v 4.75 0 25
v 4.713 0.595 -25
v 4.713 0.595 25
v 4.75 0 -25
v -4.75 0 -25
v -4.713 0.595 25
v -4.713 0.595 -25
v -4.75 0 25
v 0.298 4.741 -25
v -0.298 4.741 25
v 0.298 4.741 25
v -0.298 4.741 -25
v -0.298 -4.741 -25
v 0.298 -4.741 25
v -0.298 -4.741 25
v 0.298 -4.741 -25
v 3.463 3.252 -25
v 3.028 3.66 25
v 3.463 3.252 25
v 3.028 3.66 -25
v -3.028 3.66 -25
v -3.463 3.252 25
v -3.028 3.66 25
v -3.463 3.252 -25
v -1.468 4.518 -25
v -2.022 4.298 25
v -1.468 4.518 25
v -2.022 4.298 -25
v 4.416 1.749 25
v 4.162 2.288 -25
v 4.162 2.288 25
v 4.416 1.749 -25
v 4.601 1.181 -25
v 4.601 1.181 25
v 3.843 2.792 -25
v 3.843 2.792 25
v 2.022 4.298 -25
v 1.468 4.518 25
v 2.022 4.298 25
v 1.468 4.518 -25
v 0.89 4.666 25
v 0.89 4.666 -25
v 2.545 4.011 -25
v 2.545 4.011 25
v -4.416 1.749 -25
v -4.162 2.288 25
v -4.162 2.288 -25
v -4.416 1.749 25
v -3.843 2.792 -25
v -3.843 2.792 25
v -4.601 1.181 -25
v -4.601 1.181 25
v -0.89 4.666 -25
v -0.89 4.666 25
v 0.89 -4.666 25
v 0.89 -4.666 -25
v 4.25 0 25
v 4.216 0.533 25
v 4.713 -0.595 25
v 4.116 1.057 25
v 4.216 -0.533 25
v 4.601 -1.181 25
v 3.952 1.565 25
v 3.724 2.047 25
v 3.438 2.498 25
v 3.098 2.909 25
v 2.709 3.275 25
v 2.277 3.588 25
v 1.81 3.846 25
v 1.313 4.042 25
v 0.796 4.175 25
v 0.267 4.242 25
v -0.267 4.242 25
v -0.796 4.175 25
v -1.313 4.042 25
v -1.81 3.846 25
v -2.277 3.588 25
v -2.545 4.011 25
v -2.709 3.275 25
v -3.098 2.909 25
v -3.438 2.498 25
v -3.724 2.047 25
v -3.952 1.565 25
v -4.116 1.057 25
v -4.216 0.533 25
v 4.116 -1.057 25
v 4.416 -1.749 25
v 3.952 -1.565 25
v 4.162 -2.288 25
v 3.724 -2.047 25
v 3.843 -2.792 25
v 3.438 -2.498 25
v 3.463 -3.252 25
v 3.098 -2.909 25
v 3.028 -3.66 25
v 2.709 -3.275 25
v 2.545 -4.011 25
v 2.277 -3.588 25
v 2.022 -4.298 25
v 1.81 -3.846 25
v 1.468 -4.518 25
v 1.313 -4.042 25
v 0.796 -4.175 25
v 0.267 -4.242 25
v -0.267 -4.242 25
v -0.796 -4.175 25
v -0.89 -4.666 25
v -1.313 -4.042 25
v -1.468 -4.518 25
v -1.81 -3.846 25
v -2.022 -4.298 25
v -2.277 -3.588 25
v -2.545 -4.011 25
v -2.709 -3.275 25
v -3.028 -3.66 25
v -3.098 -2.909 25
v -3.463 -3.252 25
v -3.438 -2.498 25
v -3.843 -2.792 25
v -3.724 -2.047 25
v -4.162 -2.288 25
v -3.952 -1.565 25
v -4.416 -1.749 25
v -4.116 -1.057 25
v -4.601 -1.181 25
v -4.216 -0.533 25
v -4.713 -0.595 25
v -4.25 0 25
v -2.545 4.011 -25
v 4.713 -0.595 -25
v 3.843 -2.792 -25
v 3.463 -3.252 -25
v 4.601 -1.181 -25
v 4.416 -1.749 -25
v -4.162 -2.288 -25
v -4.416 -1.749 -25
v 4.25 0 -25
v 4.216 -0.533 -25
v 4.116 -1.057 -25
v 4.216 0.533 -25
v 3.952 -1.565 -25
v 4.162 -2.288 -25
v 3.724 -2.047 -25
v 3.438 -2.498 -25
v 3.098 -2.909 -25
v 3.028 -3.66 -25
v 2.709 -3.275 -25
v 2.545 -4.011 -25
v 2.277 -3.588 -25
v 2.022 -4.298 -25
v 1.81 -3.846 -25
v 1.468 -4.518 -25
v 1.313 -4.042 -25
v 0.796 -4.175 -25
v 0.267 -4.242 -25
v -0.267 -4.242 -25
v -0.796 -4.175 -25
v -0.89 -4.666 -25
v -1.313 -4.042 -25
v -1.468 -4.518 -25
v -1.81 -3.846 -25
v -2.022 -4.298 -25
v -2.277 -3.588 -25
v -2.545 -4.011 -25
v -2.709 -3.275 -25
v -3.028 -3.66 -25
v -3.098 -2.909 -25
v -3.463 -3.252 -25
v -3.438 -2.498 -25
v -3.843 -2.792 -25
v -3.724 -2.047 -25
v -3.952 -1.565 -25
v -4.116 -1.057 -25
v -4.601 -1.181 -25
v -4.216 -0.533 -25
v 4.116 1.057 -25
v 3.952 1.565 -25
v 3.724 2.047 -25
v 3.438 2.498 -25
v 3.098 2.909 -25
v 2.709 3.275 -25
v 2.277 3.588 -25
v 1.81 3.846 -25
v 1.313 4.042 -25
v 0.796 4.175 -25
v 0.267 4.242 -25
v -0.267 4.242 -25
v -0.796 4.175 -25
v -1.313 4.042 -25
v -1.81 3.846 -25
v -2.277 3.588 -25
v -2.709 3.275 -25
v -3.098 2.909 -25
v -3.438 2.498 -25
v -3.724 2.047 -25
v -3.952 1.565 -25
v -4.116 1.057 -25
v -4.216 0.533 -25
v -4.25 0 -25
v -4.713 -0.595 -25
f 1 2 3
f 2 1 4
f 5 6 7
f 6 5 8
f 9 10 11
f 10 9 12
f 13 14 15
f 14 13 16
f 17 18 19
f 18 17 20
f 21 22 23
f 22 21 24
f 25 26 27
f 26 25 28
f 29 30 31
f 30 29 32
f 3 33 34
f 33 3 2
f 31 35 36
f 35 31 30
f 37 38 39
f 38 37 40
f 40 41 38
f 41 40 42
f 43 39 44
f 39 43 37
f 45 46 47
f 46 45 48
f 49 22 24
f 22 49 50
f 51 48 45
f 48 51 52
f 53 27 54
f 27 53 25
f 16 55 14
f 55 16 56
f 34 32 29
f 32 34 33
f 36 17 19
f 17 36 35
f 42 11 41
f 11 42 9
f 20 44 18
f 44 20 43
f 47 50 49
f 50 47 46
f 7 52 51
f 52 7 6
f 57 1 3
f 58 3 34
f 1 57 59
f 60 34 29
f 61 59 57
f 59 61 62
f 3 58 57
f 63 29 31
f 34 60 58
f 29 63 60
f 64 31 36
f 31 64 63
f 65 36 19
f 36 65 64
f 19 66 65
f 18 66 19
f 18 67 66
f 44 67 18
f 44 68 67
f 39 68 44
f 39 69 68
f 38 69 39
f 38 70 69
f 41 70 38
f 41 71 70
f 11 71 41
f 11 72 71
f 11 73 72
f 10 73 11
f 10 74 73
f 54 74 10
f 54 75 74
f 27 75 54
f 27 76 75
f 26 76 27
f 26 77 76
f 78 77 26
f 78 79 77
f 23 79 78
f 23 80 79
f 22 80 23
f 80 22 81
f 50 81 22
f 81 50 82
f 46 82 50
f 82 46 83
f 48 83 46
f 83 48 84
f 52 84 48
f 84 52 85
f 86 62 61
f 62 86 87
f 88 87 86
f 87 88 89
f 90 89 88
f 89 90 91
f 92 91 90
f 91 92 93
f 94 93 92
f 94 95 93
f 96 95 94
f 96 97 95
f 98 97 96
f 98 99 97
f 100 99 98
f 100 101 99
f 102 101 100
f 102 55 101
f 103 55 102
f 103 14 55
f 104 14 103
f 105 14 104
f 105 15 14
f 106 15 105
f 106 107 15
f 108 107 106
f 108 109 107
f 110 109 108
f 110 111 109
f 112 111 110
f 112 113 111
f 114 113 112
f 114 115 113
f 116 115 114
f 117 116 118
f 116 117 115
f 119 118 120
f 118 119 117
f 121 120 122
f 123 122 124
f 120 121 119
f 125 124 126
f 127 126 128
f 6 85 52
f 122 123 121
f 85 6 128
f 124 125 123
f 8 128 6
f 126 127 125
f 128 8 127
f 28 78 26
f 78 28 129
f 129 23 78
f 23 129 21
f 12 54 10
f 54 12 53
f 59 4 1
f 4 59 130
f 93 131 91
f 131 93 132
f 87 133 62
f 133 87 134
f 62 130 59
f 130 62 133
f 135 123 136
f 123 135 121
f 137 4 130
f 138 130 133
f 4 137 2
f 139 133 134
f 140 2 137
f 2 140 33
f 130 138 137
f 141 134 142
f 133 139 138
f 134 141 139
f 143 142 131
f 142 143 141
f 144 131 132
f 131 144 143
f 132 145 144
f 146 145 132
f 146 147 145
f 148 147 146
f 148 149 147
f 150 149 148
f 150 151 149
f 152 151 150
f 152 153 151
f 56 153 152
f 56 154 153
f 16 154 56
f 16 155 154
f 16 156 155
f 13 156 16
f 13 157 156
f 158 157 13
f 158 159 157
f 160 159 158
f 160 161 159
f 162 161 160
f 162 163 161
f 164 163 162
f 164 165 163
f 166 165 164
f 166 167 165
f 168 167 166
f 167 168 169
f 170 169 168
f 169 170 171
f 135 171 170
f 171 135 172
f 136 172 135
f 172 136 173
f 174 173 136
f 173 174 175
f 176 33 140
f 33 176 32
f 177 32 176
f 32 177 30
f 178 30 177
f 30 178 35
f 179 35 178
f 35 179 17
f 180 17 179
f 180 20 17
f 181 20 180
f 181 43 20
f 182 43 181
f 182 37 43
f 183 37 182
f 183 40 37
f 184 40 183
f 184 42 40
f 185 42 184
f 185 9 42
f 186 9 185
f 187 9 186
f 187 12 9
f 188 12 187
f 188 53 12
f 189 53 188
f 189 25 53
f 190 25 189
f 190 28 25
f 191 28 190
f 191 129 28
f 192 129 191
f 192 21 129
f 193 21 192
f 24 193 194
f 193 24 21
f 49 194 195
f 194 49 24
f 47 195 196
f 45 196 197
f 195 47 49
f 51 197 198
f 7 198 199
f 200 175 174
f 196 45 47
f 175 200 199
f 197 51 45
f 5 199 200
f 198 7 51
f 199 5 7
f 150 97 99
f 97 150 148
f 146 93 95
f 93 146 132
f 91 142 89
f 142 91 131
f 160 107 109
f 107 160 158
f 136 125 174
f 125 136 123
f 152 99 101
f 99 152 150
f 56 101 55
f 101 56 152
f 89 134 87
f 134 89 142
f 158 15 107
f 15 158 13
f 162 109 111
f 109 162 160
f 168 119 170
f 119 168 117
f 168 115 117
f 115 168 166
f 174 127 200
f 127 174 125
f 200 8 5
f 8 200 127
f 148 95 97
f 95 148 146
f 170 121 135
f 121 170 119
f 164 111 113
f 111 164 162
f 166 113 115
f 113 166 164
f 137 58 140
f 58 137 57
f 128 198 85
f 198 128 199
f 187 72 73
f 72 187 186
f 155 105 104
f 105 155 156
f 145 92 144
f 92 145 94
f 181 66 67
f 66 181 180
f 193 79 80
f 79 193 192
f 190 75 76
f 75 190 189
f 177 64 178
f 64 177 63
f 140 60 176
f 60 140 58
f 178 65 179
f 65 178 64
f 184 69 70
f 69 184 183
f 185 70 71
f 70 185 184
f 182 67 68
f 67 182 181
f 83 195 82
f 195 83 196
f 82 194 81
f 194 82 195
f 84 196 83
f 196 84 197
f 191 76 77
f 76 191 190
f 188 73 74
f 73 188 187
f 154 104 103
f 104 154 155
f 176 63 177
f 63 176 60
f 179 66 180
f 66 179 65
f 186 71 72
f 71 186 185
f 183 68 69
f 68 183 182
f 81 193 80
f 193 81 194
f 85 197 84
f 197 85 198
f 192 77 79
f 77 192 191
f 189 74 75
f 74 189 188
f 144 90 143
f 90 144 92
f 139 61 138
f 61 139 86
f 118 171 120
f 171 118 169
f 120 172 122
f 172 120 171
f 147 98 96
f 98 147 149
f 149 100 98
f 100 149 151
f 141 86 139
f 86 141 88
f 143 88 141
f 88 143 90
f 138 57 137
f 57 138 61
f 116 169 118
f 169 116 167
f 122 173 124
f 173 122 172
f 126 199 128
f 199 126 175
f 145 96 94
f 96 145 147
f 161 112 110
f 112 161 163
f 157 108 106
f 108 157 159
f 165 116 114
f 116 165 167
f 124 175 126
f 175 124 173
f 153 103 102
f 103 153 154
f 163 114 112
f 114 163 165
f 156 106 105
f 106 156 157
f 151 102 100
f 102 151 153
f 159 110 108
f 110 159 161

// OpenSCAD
$fn = 50;


difference() {
	union() {
		translate(v = [0, 0, -25.0000000000]) {
			cylinder(h = 50, r = 4.7500000000);
		}
	}
	union() {
		translate(v = [0, 0, -100.0000000000]) {
			cylinder(h = 200, r = 4.2500000000);
		}
	}
}
